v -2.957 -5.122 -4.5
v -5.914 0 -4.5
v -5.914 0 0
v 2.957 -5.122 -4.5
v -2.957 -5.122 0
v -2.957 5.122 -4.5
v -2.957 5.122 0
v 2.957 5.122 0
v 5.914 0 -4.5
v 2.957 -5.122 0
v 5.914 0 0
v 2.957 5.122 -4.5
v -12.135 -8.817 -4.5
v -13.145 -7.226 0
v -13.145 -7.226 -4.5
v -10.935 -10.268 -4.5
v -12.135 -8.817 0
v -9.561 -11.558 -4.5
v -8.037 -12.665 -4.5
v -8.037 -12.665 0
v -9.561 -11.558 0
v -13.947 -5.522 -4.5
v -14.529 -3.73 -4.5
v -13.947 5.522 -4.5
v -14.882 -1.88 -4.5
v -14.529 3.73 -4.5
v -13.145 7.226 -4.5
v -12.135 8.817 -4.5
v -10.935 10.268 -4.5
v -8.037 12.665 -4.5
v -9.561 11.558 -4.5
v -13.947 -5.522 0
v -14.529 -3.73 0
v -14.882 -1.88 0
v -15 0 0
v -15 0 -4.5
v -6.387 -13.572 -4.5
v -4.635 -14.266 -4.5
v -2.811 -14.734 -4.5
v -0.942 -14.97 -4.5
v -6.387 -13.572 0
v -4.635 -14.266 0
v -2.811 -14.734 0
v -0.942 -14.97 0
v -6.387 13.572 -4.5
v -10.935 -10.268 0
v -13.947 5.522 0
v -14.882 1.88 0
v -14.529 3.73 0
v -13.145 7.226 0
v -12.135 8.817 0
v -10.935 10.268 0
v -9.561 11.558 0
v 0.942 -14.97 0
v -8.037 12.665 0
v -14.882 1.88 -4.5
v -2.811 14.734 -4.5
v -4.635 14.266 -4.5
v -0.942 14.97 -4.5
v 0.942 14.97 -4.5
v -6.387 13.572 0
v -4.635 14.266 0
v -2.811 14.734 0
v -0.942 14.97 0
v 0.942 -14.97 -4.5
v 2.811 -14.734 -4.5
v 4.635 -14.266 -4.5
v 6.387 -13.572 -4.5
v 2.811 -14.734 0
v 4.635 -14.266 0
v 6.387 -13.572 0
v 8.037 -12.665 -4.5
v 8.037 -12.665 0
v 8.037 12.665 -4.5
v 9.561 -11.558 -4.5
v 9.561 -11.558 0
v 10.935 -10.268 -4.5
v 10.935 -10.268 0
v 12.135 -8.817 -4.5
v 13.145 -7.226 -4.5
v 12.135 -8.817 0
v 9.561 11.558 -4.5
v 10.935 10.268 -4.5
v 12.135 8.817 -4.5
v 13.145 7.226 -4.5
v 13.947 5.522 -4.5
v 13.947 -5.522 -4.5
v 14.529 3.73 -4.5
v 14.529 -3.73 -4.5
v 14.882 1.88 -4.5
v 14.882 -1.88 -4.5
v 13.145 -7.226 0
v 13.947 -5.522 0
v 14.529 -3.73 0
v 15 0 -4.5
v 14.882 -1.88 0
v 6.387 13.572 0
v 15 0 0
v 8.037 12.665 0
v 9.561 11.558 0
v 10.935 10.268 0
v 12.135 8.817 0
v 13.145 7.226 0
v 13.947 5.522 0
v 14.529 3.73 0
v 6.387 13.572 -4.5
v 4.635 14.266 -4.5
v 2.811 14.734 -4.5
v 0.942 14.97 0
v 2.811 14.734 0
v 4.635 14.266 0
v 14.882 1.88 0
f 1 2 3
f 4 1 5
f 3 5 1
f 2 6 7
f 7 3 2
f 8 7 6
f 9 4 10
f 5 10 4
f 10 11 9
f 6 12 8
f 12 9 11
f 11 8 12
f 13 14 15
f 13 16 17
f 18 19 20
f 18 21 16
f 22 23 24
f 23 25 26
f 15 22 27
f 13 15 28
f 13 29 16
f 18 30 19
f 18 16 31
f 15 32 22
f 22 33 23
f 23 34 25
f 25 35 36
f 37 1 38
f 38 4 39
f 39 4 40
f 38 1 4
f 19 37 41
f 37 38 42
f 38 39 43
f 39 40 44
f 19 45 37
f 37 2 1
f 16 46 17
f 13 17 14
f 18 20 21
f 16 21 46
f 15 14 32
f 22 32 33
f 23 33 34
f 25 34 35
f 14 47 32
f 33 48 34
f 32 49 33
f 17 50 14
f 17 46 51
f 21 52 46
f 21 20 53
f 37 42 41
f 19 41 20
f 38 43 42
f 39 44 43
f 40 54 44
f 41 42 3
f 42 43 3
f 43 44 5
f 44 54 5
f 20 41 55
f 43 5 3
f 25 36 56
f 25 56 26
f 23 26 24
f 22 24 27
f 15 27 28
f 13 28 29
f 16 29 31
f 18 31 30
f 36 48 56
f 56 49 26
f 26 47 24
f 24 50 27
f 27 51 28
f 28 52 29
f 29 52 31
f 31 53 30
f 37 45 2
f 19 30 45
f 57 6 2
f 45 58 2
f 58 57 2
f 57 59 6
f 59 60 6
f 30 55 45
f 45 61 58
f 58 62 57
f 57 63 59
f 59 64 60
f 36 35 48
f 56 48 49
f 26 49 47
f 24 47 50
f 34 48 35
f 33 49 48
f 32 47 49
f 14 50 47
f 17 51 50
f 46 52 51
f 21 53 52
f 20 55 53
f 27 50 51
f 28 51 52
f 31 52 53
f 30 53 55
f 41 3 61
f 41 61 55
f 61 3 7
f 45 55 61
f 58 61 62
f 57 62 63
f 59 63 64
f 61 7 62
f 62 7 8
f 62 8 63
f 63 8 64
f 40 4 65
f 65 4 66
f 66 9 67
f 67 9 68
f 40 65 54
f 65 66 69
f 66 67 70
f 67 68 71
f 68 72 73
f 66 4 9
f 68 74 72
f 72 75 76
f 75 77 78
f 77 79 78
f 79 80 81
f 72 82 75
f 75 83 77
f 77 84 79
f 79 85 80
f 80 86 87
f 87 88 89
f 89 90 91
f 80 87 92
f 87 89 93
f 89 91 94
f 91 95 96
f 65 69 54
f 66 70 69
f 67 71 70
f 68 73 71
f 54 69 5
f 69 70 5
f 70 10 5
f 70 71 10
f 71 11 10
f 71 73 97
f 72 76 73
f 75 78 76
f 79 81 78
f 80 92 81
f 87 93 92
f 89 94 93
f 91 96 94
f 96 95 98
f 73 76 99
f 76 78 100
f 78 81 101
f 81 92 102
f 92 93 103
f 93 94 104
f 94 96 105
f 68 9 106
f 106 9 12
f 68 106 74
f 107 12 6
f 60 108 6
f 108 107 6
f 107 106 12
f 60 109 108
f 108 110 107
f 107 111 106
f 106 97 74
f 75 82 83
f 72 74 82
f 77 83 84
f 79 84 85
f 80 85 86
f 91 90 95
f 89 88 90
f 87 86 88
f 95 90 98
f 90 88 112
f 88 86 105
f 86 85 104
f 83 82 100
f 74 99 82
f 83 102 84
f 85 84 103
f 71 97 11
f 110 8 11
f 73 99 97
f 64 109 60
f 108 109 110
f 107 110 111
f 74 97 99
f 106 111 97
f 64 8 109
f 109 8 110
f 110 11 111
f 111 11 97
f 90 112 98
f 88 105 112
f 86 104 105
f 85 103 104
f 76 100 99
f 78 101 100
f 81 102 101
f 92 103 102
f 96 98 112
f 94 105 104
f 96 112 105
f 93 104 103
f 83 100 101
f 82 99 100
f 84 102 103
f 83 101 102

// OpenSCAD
$fn = 50;

difference() {
	union() {
		translate(v = [0, 0, -4.5]) {
			cylinder(h = 4.5, r = 15.0);
		}
	}
	union() {
		translate(v = [0, 0, 0]) {
			rotate(a = [0, 0, 0]) {
				difference() {
					union() {
						translate(v = [0, 0, -5]) {
							linear_extrude(height = 5) {
								polygon(points = [[5.914249999999999, 0.0], [2.957125, 5.1218907443321156], [-2.9571249999999982, 5.1218907443321156], [-5.914249999999999, 7.242867331857232e-16], [-2.9571250000000022, -5.121890744332115], [2.9571249999999956, -5.121890744332118]]);
							}
						}
					}
					union();
				}
			}
		}
		#translate(v = [0, 0, -100.0]) {
			cylinder(h = 200, r = 3.25);
		}
	}
}
